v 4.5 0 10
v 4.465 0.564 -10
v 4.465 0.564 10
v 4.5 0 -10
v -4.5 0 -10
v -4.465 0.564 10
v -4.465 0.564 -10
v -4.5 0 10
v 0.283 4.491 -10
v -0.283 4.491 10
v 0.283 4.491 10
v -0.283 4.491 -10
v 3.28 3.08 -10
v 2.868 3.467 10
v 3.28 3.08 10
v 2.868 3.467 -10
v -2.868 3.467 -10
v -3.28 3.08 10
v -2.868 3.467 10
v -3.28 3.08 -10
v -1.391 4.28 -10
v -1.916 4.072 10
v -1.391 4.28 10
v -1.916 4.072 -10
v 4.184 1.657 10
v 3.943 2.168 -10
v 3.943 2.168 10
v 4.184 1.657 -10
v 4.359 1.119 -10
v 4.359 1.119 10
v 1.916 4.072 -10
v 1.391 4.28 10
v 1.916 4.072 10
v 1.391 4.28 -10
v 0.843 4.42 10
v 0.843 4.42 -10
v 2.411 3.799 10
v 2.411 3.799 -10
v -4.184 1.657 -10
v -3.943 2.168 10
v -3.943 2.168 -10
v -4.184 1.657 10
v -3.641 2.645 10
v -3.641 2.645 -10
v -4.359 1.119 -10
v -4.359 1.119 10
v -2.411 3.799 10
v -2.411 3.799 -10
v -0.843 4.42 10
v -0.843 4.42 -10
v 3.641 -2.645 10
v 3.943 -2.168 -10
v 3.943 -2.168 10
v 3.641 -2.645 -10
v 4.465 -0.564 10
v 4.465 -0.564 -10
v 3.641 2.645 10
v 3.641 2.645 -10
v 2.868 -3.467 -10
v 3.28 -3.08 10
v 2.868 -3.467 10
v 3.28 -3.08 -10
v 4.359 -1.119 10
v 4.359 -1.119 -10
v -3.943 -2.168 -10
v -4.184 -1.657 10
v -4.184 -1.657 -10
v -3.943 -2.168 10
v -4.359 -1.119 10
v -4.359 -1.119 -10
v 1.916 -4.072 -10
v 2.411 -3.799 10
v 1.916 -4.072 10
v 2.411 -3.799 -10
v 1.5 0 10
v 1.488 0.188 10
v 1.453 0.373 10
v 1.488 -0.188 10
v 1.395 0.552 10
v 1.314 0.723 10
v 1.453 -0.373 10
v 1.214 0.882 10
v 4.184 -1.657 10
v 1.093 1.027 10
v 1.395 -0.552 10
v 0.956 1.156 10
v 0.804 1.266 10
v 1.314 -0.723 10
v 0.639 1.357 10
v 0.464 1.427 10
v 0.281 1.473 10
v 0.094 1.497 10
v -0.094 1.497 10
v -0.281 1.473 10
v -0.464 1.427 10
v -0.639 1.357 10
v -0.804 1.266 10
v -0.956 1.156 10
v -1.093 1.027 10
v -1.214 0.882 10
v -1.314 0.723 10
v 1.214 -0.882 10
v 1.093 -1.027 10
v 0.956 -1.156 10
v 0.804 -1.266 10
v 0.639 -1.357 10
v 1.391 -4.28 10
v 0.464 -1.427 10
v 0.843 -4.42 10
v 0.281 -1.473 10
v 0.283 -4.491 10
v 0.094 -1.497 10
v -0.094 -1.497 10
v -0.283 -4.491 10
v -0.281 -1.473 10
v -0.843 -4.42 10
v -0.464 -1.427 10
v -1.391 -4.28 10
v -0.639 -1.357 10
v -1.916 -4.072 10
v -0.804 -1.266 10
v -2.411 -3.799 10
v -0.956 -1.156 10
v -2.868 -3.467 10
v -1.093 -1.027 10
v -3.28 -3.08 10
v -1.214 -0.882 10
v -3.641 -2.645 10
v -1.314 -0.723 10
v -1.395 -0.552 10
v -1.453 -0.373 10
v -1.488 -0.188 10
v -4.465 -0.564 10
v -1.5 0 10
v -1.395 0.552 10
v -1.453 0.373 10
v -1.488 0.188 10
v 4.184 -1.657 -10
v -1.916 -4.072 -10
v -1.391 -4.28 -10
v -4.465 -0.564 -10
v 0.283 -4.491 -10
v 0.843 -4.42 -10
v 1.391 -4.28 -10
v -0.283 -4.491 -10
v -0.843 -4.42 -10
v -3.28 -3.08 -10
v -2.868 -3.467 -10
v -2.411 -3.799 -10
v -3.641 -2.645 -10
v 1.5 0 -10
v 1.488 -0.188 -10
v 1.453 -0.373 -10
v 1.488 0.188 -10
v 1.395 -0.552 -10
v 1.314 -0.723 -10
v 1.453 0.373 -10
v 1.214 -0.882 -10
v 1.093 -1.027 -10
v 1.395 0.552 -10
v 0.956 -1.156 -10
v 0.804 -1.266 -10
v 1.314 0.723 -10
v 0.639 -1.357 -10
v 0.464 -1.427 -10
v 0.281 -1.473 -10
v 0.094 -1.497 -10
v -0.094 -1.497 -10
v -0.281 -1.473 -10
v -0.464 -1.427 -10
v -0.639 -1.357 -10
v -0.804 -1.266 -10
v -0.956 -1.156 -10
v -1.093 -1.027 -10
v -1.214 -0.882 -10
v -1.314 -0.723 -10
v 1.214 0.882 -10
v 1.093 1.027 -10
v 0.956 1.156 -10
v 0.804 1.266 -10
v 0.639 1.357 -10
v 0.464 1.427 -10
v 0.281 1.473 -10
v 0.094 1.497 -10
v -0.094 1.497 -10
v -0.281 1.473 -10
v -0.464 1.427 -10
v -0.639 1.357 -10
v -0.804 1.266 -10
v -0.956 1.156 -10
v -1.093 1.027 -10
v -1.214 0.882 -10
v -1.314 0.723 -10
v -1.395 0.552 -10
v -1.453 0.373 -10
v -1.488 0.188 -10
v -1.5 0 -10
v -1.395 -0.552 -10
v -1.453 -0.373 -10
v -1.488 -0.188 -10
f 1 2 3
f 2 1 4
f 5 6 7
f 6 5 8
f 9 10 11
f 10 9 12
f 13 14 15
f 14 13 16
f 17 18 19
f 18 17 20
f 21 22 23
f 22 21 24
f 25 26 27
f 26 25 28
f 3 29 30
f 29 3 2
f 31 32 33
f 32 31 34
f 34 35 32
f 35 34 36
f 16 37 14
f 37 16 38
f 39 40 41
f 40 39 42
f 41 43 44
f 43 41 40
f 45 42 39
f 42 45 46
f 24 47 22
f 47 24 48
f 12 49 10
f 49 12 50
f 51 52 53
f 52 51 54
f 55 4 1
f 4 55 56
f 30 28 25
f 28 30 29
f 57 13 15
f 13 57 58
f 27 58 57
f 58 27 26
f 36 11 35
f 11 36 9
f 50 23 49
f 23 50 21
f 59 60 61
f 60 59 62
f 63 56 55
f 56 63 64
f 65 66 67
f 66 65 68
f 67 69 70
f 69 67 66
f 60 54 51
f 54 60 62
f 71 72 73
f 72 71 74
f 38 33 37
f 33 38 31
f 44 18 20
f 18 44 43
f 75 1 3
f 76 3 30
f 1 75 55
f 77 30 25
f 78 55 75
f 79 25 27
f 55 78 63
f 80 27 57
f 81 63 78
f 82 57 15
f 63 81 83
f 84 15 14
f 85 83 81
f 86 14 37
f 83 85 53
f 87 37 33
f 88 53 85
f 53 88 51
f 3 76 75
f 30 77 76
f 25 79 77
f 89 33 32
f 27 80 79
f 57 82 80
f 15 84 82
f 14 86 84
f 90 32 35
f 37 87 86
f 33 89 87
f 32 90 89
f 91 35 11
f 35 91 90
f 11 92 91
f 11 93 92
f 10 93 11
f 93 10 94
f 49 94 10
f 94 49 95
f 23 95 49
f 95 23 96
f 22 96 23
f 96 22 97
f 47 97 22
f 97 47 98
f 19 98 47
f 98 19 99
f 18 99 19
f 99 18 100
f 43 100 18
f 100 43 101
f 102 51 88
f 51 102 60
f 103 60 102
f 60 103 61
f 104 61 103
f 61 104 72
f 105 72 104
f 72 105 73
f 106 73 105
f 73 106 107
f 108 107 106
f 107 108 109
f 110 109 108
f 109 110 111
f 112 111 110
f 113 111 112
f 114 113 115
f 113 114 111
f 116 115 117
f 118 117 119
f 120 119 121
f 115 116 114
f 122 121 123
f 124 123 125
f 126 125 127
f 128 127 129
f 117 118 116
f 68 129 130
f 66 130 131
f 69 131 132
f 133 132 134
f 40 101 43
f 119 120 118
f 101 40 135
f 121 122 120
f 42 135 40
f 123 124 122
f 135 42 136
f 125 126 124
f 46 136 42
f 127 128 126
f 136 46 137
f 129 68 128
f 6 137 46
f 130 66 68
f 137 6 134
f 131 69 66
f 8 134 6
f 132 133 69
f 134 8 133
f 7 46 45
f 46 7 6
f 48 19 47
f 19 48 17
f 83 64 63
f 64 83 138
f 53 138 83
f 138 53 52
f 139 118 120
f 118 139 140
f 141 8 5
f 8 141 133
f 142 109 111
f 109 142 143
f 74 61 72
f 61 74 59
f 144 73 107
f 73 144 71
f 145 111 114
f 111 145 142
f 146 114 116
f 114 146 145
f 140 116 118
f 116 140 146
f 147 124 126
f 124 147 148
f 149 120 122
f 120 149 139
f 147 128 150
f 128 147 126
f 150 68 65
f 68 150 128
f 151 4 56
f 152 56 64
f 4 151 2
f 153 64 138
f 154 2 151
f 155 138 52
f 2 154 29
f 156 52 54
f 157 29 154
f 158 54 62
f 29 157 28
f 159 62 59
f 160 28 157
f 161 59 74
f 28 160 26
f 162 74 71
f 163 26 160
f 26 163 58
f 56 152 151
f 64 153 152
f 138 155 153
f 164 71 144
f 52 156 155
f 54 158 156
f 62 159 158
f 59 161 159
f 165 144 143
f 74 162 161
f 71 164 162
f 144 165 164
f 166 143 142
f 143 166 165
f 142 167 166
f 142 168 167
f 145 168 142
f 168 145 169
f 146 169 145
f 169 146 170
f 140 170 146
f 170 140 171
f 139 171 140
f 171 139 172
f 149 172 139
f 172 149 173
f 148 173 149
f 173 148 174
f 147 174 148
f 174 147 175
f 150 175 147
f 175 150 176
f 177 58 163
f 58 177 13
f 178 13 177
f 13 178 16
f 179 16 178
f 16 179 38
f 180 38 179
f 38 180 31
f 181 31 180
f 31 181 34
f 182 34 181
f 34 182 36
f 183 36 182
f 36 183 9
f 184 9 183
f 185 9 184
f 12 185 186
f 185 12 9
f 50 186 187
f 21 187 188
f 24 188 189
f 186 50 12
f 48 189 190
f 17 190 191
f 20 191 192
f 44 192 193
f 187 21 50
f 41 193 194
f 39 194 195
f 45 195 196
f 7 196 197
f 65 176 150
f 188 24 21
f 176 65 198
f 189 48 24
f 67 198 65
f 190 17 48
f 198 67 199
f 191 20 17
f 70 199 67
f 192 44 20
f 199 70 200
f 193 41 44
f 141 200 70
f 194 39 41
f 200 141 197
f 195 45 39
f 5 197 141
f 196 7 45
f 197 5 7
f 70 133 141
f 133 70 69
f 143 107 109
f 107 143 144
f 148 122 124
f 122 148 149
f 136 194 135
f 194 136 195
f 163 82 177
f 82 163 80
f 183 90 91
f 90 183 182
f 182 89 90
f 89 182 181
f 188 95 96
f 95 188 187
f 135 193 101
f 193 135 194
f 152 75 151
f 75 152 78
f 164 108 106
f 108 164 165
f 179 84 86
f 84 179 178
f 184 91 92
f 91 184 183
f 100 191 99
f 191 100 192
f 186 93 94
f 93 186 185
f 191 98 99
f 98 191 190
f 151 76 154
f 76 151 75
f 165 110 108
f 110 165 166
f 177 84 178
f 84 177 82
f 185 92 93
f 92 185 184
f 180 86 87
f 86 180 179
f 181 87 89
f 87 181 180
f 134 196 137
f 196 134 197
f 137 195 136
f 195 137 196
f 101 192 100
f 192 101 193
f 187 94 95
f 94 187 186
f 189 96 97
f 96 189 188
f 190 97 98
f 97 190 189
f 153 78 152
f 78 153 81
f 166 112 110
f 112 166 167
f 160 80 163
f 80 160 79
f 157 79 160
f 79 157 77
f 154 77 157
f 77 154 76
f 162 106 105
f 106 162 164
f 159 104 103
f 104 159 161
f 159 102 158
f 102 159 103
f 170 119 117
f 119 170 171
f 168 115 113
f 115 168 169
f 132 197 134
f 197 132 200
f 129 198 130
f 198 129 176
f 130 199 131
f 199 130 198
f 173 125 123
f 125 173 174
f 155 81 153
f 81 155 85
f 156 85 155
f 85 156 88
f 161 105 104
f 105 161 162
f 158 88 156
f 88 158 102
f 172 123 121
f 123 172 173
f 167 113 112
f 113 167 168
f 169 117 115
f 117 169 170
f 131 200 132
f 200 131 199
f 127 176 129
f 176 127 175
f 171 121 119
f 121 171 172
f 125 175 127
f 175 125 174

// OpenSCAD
$fn = 50;


difference() {
	union() {
		translate(v = [0, 0, -10.0000000000]) {
			cylinder(h = 20, r = 4.5000000000);
		}
	}
	union() {
		translate(v = [0, 0, -100.0000000000]) {
			cylinder(h = 200, r = 1.5000000000);
		}
	}
}
